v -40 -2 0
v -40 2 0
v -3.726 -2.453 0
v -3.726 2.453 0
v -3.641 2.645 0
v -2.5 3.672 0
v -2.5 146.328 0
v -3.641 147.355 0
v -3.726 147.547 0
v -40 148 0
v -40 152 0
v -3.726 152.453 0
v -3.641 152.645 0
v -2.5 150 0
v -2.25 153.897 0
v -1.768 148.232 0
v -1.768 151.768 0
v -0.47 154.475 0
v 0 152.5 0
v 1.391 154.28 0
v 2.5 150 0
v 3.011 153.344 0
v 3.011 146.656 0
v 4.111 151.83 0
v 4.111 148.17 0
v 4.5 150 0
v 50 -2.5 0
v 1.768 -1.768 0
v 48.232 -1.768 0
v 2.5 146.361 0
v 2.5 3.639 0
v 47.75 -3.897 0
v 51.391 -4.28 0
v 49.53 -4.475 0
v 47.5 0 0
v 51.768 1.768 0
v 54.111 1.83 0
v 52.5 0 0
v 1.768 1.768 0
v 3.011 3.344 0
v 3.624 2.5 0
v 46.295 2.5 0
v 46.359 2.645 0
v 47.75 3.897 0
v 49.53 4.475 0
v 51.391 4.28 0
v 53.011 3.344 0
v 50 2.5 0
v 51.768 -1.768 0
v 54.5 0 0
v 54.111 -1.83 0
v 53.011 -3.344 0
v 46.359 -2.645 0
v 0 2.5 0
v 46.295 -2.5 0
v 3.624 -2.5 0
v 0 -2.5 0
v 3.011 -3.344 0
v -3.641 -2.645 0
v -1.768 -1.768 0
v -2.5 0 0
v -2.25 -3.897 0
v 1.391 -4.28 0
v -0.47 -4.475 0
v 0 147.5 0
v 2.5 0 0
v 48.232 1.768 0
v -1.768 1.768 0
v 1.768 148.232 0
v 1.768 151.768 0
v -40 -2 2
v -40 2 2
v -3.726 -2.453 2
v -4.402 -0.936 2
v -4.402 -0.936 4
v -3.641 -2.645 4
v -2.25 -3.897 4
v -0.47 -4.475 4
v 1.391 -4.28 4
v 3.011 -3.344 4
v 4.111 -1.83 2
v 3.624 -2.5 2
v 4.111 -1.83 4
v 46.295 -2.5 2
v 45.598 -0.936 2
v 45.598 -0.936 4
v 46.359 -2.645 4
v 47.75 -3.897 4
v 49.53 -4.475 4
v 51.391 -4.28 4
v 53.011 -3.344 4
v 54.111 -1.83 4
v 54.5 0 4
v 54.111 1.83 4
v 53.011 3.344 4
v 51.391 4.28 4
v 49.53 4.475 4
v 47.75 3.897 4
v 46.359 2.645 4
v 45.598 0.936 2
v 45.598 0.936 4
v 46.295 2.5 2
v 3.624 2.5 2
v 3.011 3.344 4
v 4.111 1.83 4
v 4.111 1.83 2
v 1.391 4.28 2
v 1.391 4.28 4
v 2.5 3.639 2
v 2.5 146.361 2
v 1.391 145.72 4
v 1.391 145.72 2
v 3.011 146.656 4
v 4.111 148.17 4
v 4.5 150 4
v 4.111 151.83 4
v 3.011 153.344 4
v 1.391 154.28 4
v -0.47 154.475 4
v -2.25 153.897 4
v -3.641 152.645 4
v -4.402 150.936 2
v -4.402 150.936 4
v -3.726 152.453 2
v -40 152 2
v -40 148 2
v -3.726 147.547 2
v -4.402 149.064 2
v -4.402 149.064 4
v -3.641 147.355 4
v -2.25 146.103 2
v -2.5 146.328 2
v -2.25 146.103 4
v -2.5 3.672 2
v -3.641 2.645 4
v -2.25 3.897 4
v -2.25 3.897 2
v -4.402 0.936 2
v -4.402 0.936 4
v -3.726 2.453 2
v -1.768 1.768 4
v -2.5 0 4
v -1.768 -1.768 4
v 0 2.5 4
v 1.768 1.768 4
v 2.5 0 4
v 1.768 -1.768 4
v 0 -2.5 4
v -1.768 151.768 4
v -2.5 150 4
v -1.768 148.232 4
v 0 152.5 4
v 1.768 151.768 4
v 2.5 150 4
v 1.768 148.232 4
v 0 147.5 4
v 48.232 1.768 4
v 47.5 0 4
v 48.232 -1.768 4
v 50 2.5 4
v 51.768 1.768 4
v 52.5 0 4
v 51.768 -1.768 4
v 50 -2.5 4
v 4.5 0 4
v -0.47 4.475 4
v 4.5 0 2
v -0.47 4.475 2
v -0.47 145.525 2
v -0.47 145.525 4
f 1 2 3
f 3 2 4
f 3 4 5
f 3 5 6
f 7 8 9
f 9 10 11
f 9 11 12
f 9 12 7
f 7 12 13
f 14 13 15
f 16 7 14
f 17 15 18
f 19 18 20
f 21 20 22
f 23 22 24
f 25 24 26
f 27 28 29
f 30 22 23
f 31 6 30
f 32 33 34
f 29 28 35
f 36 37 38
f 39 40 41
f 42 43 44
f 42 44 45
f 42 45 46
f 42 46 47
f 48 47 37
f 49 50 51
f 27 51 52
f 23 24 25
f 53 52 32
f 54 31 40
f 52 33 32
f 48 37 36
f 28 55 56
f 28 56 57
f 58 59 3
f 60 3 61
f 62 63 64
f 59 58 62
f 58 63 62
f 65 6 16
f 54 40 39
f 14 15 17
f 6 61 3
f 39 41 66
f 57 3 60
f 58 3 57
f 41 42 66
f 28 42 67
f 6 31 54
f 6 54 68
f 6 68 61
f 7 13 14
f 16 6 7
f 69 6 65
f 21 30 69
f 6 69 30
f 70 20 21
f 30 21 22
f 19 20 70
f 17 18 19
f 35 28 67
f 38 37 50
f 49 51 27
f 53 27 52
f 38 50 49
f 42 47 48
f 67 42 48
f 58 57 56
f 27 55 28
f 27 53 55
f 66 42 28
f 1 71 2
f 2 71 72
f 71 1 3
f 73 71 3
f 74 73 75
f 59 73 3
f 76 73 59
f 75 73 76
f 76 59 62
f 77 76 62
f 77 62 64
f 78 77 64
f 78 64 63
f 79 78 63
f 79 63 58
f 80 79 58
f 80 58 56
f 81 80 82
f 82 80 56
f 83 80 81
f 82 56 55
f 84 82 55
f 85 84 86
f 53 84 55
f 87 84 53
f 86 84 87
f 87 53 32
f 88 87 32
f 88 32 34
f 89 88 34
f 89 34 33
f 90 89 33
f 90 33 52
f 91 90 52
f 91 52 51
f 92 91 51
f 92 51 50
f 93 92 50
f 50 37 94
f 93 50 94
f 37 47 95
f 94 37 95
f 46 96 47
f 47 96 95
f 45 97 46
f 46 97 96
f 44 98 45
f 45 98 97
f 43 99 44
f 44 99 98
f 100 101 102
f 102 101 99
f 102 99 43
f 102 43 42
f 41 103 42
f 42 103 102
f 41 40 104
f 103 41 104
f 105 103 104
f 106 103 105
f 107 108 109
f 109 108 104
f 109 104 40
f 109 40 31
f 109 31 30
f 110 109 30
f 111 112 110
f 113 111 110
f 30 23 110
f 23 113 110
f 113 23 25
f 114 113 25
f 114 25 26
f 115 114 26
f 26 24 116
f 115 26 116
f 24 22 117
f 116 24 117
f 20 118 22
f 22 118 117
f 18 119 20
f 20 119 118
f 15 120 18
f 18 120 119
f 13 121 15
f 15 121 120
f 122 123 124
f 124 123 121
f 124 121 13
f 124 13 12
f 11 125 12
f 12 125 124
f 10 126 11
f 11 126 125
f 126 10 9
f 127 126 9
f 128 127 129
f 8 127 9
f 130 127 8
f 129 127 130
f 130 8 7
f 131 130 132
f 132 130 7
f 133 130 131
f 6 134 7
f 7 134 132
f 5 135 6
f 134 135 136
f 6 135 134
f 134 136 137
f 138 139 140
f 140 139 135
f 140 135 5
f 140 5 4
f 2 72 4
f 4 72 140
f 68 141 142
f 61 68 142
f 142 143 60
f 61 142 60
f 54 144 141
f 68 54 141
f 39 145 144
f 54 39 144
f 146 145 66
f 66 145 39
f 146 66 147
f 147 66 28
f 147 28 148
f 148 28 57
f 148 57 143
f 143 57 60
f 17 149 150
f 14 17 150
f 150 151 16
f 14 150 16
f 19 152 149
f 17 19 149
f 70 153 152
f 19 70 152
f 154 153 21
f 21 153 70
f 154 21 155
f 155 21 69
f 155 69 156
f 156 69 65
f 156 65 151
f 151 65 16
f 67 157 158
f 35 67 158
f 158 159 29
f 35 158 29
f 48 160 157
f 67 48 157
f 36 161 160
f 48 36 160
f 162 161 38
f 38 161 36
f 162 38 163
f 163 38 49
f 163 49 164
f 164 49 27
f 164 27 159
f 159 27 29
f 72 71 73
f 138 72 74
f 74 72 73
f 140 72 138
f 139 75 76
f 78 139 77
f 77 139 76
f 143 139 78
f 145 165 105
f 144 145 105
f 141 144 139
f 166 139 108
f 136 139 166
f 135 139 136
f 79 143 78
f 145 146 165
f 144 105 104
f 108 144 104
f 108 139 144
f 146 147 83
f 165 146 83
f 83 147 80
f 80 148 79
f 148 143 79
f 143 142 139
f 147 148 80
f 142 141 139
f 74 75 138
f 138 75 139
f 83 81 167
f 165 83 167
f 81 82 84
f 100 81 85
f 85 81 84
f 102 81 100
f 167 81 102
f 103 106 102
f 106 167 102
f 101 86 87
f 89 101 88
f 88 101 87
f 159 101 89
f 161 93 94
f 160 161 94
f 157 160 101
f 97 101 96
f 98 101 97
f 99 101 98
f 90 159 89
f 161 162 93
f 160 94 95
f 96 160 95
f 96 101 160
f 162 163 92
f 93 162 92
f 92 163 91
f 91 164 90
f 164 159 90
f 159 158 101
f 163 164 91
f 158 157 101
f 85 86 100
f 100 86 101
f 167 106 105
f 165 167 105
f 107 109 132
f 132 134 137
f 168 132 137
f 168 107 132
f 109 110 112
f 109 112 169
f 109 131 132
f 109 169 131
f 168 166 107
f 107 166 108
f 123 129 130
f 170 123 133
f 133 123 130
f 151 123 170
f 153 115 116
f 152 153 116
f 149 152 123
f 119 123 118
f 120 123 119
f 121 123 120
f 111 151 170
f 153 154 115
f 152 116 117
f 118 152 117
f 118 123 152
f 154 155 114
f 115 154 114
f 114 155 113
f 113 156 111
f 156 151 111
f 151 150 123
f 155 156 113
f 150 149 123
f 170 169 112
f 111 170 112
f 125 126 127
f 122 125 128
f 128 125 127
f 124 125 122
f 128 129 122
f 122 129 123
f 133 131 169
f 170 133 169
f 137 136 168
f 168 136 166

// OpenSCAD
x_sep = 50;
y_sep = 150;

hole_dia = 5;
hole_rad = hole_dia/2;

side_spacer = 40;

wall=4;

template();

module template(){
	difference(){
		union(){
			hull(){
				cylinder(r=hole_rad, h=wall/2);
				translate([x_sep,0,0]) cylinder(r=hole_rad, h=wall/2);	
			}
			hull(){
				cylinder(r=hole_rad, h=wall/2);
				translate([0,y_sep,0]) cylinder(r=hole_rad, h=wall/2);
			}

			//side spacers
			hull(){
				cylinder(r=hole_rad, h=wall/2);
				translate([-side_spacer,-wall/2,0]) cube([wall,wall,wall/2]);
			}
			hull(){
				translate([0,y_sep,0]) cylinder(r=hole_rad, h=wall/2);
				translate([-side_spacer,y_sep-wall/2,0]) cube([wall,wall,wall/2]);
			}
		
			cylinder(r=hole_rad+wall/2, h=wall);
			translate([x_sep,0,0]) cylinder(r=hole_rad+wall/2, h=wall);	
			translate([0,y_sep,0]) cylinder(r=hole_rad+wall/2, h=wall);
		}
		
		translate([0,0,-.1]){
			cylinder(r=hole_rad, h=wall+1);
			translate([x_sep,0,0]) cylinder(r=hole_rad, h=wall+1);	
			translate([0,y_sep,0]) cylinder(r=hole_rad, h=wall+1);
		}
	}
}
